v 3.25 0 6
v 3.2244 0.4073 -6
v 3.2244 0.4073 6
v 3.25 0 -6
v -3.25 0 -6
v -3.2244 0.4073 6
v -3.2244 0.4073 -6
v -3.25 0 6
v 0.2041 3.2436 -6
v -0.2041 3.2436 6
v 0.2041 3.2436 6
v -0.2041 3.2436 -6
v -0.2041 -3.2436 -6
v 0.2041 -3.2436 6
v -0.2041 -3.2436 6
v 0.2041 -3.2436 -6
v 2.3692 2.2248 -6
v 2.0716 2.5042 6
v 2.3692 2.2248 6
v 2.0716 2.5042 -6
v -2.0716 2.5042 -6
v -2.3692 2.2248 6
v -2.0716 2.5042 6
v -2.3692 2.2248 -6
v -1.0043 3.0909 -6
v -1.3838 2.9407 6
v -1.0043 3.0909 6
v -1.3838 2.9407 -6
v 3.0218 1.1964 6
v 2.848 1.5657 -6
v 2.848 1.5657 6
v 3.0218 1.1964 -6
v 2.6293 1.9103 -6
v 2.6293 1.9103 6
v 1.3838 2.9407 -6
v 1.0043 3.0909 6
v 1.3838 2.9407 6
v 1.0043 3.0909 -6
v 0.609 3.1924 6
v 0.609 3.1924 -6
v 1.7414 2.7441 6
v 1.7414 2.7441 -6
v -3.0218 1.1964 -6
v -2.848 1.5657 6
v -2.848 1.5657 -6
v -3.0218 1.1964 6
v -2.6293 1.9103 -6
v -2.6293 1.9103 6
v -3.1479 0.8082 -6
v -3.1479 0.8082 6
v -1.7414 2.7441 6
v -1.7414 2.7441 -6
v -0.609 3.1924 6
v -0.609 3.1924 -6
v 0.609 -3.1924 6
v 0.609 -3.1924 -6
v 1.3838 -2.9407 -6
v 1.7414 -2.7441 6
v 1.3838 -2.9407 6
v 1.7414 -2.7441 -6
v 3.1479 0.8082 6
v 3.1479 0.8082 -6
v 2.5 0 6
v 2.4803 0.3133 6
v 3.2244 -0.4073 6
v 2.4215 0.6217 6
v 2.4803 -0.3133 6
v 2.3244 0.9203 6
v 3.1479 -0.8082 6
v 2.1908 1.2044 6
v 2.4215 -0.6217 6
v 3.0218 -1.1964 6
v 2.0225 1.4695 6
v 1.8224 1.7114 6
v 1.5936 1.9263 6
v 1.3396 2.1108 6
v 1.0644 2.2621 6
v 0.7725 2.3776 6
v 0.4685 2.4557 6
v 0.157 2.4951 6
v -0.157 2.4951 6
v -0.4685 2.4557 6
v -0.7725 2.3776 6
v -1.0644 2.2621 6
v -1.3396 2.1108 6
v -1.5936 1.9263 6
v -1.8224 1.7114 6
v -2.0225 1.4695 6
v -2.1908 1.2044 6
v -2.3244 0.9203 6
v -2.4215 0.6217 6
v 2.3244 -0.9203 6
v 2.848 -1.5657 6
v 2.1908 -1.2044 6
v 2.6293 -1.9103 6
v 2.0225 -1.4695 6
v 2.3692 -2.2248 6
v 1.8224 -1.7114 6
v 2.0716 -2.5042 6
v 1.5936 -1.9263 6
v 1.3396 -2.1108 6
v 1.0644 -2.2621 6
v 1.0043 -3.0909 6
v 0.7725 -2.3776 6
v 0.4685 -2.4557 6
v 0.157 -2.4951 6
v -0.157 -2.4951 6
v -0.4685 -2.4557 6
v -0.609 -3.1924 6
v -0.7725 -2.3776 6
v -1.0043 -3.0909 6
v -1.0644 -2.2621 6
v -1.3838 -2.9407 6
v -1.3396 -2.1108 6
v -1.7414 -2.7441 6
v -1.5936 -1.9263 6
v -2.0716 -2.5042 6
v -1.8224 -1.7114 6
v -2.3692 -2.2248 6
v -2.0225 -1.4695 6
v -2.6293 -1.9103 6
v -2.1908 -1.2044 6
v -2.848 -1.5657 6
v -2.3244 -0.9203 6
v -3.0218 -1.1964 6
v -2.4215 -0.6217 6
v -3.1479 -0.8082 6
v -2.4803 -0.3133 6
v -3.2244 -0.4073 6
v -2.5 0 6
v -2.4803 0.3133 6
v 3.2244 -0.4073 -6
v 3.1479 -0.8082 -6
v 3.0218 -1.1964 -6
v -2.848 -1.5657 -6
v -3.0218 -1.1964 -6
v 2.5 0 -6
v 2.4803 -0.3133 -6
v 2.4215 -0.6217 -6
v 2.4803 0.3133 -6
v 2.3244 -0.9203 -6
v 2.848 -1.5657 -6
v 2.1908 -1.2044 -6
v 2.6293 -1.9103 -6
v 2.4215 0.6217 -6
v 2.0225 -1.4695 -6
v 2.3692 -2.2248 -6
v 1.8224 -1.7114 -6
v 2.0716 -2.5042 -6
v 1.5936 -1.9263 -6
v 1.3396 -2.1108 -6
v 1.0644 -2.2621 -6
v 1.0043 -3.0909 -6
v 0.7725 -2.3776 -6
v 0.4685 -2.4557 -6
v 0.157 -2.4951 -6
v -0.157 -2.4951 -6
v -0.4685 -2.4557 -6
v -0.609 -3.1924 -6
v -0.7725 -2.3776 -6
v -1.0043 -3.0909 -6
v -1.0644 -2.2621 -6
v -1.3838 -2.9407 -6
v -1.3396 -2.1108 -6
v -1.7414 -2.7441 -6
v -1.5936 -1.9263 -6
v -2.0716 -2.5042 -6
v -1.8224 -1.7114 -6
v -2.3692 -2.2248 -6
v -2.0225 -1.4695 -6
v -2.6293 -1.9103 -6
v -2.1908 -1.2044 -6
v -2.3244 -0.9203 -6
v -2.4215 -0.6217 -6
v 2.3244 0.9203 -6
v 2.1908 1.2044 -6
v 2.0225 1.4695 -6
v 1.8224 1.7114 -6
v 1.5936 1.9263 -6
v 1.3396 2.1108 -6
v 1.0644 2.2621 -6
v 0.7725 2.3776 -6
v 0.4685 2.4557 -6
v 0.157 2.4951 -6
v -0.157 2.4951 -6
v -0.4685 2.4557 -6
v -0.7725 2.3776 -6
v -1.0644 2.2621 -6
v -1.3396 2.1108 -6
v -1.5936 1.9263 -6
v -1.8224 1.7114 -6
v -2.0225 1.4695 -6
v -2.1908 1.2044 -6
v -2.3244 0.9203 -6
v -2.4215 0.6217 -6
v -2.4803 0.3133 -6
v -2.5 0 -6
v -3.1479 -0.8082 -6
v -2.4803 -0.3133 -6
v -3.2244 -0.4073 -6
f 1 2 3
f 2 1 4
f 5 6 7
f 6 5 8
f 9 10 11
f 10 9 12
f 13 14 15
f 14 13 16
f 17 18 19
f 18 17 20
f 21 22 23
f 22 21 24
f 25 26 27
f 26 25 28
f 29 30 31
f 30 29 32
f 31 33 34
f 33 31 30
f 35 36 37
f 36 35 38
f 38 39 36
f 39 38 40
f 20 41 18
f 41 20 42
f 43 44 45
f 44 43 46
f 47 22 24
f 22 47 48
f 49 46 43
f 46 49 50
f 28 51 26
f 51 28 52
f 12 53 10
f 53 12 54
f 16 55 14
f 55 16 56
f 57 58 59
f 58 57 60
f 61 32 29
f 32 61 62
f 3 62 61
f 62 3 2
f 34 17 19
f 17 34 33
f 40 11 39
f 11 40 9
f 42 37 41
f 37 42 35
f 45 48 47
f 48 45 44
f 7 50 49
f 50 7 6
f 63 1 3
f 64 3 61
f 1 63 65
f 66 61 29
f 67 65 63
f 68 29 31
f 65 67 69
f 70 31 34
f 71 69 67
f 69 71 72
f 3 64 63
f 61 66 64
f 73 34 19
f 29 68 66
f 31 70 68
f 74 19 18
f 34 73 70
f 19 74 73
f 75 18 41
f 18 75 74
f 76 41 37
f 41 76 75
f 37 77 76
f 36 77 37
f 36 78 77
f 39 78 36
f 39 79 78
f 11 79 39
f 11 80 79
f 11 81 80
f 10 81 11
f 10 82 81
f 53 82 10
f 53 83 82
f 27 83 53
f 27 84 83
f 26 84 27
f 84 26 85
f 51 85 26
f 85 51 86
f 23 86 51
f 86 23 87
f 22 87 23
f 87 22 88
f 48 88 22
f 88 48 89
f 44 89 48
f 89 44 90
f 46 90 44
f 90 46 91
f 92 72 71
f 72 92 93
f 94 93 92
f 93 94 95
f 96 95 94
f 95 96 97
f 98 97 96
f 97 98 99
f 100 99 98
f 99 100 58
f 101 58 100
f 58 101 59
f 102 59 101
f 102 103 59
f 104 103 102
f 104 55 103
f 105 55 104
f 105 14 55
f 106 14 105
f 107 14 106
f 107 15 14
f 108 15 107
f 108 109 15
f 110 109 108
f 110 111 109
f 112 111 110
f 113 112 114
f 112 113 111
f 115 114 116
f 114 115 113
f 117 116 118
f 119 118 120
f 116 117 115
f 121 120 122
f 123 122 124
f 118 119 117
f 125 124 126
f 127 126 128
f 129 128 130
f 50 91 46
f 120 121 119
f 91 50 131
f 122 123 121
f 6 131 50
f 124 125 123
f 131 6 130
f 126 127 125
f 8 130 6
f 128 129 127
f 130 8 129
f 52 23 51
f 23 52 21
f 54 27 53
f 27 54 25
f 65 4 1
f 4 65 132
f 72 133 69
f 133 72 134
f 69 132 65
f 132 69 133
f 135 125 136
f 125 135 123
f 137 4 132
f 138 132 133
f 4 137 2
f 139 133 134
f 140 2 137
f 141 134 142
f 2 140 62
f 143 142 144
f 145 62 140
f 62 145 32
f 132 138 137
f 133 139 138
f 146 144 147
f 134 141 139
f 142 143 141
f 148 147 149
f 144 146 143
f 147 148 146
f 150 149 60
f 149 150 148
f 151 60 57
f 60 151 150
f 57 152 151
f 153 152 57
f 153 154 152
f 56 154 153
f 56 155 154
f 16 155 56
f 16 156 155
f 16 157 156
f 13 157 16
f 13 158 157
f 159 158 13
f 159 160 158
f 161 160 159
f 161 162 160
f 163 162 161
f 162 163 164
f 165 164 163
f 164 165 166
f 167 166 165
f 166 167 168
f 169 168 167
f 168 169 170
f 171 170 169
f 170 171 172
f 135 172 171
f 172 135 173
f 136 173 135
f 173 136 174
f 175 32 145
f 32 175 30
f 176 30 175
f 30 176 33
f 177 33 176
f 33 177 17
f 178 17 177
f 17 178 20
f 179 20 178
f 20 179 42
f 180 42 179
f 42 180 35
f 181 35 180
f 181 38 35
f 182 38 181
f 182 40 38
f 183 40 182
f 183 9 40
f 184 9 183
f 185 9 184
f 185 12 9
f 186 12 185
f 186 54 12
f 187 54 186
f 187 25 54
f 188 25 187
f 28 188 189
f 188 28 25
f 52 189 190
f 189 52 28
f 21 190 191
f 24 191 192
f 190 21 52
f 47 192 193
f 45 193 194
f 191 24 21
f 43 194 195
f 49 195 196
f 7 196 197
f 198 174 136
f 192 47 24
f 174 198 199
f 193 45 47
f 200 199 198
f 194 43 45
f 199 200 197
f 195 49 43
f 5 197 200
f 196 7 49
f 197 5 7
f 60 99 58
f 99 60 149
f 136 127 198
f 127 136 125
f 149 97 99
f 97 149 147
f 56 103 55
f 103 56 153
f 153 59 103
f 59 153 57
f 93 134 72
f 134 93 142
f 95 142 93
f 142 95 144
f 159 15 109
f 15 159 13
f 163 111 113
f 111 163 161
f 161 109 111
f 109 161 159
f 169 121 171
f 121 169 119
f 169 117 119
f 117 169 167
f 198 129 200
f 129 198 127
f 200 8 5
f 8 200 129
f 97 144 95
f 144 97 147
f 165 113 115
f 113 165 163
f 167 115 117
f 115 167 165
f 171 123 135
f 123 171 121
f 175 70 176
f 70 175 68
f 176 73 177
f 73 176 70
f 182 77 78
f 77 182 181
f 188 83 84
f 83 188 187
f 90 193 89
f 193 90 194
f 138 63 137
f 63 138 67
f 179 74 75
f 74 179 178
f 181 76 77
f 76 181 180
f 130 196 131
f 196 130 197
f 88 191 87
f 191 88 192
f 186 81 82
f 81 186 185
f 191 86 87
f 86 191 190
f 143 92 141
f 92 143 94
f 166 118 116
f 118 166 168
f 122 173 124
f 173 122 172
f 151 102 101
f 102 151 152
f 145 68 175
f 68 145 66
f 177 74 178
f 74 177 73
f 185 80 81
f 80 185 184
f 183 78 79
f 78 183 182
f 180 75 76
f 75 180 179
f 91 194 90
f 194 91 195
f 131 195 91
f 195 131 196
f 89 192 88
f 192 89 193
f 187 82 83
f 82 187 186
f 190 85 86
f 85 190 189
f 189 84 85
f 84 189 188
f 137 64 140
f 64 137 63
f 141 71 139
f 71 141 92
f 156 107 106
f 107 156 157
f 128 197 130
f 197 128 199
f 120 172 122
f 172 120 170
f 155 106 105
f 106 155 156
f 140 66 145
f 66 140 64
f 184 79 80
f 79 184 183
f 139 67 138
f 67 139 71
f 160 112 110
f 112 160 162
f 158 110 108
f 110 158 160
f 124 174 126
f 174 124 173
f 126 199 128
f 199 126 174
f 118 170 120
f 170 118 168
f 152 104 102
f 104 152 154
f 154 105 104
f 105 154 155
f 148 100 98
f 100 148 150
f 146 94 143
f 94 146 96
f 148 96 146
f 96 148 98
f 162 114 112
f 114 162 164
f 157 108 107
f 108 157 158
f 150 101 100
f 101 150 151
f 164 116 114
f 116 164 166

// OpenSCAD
$fn = 50;


difference() {
	union() {
		translate(v = [0, 0, -6.0000000000]) {
			cylinder(h = 12, r = 3.2500000000);
		}
	}
	union() {
		translate(v = [0, 0, -100.0000000000]) {
			cylinder(h = 200, r = 2.5000000000);
		}
	}
}
